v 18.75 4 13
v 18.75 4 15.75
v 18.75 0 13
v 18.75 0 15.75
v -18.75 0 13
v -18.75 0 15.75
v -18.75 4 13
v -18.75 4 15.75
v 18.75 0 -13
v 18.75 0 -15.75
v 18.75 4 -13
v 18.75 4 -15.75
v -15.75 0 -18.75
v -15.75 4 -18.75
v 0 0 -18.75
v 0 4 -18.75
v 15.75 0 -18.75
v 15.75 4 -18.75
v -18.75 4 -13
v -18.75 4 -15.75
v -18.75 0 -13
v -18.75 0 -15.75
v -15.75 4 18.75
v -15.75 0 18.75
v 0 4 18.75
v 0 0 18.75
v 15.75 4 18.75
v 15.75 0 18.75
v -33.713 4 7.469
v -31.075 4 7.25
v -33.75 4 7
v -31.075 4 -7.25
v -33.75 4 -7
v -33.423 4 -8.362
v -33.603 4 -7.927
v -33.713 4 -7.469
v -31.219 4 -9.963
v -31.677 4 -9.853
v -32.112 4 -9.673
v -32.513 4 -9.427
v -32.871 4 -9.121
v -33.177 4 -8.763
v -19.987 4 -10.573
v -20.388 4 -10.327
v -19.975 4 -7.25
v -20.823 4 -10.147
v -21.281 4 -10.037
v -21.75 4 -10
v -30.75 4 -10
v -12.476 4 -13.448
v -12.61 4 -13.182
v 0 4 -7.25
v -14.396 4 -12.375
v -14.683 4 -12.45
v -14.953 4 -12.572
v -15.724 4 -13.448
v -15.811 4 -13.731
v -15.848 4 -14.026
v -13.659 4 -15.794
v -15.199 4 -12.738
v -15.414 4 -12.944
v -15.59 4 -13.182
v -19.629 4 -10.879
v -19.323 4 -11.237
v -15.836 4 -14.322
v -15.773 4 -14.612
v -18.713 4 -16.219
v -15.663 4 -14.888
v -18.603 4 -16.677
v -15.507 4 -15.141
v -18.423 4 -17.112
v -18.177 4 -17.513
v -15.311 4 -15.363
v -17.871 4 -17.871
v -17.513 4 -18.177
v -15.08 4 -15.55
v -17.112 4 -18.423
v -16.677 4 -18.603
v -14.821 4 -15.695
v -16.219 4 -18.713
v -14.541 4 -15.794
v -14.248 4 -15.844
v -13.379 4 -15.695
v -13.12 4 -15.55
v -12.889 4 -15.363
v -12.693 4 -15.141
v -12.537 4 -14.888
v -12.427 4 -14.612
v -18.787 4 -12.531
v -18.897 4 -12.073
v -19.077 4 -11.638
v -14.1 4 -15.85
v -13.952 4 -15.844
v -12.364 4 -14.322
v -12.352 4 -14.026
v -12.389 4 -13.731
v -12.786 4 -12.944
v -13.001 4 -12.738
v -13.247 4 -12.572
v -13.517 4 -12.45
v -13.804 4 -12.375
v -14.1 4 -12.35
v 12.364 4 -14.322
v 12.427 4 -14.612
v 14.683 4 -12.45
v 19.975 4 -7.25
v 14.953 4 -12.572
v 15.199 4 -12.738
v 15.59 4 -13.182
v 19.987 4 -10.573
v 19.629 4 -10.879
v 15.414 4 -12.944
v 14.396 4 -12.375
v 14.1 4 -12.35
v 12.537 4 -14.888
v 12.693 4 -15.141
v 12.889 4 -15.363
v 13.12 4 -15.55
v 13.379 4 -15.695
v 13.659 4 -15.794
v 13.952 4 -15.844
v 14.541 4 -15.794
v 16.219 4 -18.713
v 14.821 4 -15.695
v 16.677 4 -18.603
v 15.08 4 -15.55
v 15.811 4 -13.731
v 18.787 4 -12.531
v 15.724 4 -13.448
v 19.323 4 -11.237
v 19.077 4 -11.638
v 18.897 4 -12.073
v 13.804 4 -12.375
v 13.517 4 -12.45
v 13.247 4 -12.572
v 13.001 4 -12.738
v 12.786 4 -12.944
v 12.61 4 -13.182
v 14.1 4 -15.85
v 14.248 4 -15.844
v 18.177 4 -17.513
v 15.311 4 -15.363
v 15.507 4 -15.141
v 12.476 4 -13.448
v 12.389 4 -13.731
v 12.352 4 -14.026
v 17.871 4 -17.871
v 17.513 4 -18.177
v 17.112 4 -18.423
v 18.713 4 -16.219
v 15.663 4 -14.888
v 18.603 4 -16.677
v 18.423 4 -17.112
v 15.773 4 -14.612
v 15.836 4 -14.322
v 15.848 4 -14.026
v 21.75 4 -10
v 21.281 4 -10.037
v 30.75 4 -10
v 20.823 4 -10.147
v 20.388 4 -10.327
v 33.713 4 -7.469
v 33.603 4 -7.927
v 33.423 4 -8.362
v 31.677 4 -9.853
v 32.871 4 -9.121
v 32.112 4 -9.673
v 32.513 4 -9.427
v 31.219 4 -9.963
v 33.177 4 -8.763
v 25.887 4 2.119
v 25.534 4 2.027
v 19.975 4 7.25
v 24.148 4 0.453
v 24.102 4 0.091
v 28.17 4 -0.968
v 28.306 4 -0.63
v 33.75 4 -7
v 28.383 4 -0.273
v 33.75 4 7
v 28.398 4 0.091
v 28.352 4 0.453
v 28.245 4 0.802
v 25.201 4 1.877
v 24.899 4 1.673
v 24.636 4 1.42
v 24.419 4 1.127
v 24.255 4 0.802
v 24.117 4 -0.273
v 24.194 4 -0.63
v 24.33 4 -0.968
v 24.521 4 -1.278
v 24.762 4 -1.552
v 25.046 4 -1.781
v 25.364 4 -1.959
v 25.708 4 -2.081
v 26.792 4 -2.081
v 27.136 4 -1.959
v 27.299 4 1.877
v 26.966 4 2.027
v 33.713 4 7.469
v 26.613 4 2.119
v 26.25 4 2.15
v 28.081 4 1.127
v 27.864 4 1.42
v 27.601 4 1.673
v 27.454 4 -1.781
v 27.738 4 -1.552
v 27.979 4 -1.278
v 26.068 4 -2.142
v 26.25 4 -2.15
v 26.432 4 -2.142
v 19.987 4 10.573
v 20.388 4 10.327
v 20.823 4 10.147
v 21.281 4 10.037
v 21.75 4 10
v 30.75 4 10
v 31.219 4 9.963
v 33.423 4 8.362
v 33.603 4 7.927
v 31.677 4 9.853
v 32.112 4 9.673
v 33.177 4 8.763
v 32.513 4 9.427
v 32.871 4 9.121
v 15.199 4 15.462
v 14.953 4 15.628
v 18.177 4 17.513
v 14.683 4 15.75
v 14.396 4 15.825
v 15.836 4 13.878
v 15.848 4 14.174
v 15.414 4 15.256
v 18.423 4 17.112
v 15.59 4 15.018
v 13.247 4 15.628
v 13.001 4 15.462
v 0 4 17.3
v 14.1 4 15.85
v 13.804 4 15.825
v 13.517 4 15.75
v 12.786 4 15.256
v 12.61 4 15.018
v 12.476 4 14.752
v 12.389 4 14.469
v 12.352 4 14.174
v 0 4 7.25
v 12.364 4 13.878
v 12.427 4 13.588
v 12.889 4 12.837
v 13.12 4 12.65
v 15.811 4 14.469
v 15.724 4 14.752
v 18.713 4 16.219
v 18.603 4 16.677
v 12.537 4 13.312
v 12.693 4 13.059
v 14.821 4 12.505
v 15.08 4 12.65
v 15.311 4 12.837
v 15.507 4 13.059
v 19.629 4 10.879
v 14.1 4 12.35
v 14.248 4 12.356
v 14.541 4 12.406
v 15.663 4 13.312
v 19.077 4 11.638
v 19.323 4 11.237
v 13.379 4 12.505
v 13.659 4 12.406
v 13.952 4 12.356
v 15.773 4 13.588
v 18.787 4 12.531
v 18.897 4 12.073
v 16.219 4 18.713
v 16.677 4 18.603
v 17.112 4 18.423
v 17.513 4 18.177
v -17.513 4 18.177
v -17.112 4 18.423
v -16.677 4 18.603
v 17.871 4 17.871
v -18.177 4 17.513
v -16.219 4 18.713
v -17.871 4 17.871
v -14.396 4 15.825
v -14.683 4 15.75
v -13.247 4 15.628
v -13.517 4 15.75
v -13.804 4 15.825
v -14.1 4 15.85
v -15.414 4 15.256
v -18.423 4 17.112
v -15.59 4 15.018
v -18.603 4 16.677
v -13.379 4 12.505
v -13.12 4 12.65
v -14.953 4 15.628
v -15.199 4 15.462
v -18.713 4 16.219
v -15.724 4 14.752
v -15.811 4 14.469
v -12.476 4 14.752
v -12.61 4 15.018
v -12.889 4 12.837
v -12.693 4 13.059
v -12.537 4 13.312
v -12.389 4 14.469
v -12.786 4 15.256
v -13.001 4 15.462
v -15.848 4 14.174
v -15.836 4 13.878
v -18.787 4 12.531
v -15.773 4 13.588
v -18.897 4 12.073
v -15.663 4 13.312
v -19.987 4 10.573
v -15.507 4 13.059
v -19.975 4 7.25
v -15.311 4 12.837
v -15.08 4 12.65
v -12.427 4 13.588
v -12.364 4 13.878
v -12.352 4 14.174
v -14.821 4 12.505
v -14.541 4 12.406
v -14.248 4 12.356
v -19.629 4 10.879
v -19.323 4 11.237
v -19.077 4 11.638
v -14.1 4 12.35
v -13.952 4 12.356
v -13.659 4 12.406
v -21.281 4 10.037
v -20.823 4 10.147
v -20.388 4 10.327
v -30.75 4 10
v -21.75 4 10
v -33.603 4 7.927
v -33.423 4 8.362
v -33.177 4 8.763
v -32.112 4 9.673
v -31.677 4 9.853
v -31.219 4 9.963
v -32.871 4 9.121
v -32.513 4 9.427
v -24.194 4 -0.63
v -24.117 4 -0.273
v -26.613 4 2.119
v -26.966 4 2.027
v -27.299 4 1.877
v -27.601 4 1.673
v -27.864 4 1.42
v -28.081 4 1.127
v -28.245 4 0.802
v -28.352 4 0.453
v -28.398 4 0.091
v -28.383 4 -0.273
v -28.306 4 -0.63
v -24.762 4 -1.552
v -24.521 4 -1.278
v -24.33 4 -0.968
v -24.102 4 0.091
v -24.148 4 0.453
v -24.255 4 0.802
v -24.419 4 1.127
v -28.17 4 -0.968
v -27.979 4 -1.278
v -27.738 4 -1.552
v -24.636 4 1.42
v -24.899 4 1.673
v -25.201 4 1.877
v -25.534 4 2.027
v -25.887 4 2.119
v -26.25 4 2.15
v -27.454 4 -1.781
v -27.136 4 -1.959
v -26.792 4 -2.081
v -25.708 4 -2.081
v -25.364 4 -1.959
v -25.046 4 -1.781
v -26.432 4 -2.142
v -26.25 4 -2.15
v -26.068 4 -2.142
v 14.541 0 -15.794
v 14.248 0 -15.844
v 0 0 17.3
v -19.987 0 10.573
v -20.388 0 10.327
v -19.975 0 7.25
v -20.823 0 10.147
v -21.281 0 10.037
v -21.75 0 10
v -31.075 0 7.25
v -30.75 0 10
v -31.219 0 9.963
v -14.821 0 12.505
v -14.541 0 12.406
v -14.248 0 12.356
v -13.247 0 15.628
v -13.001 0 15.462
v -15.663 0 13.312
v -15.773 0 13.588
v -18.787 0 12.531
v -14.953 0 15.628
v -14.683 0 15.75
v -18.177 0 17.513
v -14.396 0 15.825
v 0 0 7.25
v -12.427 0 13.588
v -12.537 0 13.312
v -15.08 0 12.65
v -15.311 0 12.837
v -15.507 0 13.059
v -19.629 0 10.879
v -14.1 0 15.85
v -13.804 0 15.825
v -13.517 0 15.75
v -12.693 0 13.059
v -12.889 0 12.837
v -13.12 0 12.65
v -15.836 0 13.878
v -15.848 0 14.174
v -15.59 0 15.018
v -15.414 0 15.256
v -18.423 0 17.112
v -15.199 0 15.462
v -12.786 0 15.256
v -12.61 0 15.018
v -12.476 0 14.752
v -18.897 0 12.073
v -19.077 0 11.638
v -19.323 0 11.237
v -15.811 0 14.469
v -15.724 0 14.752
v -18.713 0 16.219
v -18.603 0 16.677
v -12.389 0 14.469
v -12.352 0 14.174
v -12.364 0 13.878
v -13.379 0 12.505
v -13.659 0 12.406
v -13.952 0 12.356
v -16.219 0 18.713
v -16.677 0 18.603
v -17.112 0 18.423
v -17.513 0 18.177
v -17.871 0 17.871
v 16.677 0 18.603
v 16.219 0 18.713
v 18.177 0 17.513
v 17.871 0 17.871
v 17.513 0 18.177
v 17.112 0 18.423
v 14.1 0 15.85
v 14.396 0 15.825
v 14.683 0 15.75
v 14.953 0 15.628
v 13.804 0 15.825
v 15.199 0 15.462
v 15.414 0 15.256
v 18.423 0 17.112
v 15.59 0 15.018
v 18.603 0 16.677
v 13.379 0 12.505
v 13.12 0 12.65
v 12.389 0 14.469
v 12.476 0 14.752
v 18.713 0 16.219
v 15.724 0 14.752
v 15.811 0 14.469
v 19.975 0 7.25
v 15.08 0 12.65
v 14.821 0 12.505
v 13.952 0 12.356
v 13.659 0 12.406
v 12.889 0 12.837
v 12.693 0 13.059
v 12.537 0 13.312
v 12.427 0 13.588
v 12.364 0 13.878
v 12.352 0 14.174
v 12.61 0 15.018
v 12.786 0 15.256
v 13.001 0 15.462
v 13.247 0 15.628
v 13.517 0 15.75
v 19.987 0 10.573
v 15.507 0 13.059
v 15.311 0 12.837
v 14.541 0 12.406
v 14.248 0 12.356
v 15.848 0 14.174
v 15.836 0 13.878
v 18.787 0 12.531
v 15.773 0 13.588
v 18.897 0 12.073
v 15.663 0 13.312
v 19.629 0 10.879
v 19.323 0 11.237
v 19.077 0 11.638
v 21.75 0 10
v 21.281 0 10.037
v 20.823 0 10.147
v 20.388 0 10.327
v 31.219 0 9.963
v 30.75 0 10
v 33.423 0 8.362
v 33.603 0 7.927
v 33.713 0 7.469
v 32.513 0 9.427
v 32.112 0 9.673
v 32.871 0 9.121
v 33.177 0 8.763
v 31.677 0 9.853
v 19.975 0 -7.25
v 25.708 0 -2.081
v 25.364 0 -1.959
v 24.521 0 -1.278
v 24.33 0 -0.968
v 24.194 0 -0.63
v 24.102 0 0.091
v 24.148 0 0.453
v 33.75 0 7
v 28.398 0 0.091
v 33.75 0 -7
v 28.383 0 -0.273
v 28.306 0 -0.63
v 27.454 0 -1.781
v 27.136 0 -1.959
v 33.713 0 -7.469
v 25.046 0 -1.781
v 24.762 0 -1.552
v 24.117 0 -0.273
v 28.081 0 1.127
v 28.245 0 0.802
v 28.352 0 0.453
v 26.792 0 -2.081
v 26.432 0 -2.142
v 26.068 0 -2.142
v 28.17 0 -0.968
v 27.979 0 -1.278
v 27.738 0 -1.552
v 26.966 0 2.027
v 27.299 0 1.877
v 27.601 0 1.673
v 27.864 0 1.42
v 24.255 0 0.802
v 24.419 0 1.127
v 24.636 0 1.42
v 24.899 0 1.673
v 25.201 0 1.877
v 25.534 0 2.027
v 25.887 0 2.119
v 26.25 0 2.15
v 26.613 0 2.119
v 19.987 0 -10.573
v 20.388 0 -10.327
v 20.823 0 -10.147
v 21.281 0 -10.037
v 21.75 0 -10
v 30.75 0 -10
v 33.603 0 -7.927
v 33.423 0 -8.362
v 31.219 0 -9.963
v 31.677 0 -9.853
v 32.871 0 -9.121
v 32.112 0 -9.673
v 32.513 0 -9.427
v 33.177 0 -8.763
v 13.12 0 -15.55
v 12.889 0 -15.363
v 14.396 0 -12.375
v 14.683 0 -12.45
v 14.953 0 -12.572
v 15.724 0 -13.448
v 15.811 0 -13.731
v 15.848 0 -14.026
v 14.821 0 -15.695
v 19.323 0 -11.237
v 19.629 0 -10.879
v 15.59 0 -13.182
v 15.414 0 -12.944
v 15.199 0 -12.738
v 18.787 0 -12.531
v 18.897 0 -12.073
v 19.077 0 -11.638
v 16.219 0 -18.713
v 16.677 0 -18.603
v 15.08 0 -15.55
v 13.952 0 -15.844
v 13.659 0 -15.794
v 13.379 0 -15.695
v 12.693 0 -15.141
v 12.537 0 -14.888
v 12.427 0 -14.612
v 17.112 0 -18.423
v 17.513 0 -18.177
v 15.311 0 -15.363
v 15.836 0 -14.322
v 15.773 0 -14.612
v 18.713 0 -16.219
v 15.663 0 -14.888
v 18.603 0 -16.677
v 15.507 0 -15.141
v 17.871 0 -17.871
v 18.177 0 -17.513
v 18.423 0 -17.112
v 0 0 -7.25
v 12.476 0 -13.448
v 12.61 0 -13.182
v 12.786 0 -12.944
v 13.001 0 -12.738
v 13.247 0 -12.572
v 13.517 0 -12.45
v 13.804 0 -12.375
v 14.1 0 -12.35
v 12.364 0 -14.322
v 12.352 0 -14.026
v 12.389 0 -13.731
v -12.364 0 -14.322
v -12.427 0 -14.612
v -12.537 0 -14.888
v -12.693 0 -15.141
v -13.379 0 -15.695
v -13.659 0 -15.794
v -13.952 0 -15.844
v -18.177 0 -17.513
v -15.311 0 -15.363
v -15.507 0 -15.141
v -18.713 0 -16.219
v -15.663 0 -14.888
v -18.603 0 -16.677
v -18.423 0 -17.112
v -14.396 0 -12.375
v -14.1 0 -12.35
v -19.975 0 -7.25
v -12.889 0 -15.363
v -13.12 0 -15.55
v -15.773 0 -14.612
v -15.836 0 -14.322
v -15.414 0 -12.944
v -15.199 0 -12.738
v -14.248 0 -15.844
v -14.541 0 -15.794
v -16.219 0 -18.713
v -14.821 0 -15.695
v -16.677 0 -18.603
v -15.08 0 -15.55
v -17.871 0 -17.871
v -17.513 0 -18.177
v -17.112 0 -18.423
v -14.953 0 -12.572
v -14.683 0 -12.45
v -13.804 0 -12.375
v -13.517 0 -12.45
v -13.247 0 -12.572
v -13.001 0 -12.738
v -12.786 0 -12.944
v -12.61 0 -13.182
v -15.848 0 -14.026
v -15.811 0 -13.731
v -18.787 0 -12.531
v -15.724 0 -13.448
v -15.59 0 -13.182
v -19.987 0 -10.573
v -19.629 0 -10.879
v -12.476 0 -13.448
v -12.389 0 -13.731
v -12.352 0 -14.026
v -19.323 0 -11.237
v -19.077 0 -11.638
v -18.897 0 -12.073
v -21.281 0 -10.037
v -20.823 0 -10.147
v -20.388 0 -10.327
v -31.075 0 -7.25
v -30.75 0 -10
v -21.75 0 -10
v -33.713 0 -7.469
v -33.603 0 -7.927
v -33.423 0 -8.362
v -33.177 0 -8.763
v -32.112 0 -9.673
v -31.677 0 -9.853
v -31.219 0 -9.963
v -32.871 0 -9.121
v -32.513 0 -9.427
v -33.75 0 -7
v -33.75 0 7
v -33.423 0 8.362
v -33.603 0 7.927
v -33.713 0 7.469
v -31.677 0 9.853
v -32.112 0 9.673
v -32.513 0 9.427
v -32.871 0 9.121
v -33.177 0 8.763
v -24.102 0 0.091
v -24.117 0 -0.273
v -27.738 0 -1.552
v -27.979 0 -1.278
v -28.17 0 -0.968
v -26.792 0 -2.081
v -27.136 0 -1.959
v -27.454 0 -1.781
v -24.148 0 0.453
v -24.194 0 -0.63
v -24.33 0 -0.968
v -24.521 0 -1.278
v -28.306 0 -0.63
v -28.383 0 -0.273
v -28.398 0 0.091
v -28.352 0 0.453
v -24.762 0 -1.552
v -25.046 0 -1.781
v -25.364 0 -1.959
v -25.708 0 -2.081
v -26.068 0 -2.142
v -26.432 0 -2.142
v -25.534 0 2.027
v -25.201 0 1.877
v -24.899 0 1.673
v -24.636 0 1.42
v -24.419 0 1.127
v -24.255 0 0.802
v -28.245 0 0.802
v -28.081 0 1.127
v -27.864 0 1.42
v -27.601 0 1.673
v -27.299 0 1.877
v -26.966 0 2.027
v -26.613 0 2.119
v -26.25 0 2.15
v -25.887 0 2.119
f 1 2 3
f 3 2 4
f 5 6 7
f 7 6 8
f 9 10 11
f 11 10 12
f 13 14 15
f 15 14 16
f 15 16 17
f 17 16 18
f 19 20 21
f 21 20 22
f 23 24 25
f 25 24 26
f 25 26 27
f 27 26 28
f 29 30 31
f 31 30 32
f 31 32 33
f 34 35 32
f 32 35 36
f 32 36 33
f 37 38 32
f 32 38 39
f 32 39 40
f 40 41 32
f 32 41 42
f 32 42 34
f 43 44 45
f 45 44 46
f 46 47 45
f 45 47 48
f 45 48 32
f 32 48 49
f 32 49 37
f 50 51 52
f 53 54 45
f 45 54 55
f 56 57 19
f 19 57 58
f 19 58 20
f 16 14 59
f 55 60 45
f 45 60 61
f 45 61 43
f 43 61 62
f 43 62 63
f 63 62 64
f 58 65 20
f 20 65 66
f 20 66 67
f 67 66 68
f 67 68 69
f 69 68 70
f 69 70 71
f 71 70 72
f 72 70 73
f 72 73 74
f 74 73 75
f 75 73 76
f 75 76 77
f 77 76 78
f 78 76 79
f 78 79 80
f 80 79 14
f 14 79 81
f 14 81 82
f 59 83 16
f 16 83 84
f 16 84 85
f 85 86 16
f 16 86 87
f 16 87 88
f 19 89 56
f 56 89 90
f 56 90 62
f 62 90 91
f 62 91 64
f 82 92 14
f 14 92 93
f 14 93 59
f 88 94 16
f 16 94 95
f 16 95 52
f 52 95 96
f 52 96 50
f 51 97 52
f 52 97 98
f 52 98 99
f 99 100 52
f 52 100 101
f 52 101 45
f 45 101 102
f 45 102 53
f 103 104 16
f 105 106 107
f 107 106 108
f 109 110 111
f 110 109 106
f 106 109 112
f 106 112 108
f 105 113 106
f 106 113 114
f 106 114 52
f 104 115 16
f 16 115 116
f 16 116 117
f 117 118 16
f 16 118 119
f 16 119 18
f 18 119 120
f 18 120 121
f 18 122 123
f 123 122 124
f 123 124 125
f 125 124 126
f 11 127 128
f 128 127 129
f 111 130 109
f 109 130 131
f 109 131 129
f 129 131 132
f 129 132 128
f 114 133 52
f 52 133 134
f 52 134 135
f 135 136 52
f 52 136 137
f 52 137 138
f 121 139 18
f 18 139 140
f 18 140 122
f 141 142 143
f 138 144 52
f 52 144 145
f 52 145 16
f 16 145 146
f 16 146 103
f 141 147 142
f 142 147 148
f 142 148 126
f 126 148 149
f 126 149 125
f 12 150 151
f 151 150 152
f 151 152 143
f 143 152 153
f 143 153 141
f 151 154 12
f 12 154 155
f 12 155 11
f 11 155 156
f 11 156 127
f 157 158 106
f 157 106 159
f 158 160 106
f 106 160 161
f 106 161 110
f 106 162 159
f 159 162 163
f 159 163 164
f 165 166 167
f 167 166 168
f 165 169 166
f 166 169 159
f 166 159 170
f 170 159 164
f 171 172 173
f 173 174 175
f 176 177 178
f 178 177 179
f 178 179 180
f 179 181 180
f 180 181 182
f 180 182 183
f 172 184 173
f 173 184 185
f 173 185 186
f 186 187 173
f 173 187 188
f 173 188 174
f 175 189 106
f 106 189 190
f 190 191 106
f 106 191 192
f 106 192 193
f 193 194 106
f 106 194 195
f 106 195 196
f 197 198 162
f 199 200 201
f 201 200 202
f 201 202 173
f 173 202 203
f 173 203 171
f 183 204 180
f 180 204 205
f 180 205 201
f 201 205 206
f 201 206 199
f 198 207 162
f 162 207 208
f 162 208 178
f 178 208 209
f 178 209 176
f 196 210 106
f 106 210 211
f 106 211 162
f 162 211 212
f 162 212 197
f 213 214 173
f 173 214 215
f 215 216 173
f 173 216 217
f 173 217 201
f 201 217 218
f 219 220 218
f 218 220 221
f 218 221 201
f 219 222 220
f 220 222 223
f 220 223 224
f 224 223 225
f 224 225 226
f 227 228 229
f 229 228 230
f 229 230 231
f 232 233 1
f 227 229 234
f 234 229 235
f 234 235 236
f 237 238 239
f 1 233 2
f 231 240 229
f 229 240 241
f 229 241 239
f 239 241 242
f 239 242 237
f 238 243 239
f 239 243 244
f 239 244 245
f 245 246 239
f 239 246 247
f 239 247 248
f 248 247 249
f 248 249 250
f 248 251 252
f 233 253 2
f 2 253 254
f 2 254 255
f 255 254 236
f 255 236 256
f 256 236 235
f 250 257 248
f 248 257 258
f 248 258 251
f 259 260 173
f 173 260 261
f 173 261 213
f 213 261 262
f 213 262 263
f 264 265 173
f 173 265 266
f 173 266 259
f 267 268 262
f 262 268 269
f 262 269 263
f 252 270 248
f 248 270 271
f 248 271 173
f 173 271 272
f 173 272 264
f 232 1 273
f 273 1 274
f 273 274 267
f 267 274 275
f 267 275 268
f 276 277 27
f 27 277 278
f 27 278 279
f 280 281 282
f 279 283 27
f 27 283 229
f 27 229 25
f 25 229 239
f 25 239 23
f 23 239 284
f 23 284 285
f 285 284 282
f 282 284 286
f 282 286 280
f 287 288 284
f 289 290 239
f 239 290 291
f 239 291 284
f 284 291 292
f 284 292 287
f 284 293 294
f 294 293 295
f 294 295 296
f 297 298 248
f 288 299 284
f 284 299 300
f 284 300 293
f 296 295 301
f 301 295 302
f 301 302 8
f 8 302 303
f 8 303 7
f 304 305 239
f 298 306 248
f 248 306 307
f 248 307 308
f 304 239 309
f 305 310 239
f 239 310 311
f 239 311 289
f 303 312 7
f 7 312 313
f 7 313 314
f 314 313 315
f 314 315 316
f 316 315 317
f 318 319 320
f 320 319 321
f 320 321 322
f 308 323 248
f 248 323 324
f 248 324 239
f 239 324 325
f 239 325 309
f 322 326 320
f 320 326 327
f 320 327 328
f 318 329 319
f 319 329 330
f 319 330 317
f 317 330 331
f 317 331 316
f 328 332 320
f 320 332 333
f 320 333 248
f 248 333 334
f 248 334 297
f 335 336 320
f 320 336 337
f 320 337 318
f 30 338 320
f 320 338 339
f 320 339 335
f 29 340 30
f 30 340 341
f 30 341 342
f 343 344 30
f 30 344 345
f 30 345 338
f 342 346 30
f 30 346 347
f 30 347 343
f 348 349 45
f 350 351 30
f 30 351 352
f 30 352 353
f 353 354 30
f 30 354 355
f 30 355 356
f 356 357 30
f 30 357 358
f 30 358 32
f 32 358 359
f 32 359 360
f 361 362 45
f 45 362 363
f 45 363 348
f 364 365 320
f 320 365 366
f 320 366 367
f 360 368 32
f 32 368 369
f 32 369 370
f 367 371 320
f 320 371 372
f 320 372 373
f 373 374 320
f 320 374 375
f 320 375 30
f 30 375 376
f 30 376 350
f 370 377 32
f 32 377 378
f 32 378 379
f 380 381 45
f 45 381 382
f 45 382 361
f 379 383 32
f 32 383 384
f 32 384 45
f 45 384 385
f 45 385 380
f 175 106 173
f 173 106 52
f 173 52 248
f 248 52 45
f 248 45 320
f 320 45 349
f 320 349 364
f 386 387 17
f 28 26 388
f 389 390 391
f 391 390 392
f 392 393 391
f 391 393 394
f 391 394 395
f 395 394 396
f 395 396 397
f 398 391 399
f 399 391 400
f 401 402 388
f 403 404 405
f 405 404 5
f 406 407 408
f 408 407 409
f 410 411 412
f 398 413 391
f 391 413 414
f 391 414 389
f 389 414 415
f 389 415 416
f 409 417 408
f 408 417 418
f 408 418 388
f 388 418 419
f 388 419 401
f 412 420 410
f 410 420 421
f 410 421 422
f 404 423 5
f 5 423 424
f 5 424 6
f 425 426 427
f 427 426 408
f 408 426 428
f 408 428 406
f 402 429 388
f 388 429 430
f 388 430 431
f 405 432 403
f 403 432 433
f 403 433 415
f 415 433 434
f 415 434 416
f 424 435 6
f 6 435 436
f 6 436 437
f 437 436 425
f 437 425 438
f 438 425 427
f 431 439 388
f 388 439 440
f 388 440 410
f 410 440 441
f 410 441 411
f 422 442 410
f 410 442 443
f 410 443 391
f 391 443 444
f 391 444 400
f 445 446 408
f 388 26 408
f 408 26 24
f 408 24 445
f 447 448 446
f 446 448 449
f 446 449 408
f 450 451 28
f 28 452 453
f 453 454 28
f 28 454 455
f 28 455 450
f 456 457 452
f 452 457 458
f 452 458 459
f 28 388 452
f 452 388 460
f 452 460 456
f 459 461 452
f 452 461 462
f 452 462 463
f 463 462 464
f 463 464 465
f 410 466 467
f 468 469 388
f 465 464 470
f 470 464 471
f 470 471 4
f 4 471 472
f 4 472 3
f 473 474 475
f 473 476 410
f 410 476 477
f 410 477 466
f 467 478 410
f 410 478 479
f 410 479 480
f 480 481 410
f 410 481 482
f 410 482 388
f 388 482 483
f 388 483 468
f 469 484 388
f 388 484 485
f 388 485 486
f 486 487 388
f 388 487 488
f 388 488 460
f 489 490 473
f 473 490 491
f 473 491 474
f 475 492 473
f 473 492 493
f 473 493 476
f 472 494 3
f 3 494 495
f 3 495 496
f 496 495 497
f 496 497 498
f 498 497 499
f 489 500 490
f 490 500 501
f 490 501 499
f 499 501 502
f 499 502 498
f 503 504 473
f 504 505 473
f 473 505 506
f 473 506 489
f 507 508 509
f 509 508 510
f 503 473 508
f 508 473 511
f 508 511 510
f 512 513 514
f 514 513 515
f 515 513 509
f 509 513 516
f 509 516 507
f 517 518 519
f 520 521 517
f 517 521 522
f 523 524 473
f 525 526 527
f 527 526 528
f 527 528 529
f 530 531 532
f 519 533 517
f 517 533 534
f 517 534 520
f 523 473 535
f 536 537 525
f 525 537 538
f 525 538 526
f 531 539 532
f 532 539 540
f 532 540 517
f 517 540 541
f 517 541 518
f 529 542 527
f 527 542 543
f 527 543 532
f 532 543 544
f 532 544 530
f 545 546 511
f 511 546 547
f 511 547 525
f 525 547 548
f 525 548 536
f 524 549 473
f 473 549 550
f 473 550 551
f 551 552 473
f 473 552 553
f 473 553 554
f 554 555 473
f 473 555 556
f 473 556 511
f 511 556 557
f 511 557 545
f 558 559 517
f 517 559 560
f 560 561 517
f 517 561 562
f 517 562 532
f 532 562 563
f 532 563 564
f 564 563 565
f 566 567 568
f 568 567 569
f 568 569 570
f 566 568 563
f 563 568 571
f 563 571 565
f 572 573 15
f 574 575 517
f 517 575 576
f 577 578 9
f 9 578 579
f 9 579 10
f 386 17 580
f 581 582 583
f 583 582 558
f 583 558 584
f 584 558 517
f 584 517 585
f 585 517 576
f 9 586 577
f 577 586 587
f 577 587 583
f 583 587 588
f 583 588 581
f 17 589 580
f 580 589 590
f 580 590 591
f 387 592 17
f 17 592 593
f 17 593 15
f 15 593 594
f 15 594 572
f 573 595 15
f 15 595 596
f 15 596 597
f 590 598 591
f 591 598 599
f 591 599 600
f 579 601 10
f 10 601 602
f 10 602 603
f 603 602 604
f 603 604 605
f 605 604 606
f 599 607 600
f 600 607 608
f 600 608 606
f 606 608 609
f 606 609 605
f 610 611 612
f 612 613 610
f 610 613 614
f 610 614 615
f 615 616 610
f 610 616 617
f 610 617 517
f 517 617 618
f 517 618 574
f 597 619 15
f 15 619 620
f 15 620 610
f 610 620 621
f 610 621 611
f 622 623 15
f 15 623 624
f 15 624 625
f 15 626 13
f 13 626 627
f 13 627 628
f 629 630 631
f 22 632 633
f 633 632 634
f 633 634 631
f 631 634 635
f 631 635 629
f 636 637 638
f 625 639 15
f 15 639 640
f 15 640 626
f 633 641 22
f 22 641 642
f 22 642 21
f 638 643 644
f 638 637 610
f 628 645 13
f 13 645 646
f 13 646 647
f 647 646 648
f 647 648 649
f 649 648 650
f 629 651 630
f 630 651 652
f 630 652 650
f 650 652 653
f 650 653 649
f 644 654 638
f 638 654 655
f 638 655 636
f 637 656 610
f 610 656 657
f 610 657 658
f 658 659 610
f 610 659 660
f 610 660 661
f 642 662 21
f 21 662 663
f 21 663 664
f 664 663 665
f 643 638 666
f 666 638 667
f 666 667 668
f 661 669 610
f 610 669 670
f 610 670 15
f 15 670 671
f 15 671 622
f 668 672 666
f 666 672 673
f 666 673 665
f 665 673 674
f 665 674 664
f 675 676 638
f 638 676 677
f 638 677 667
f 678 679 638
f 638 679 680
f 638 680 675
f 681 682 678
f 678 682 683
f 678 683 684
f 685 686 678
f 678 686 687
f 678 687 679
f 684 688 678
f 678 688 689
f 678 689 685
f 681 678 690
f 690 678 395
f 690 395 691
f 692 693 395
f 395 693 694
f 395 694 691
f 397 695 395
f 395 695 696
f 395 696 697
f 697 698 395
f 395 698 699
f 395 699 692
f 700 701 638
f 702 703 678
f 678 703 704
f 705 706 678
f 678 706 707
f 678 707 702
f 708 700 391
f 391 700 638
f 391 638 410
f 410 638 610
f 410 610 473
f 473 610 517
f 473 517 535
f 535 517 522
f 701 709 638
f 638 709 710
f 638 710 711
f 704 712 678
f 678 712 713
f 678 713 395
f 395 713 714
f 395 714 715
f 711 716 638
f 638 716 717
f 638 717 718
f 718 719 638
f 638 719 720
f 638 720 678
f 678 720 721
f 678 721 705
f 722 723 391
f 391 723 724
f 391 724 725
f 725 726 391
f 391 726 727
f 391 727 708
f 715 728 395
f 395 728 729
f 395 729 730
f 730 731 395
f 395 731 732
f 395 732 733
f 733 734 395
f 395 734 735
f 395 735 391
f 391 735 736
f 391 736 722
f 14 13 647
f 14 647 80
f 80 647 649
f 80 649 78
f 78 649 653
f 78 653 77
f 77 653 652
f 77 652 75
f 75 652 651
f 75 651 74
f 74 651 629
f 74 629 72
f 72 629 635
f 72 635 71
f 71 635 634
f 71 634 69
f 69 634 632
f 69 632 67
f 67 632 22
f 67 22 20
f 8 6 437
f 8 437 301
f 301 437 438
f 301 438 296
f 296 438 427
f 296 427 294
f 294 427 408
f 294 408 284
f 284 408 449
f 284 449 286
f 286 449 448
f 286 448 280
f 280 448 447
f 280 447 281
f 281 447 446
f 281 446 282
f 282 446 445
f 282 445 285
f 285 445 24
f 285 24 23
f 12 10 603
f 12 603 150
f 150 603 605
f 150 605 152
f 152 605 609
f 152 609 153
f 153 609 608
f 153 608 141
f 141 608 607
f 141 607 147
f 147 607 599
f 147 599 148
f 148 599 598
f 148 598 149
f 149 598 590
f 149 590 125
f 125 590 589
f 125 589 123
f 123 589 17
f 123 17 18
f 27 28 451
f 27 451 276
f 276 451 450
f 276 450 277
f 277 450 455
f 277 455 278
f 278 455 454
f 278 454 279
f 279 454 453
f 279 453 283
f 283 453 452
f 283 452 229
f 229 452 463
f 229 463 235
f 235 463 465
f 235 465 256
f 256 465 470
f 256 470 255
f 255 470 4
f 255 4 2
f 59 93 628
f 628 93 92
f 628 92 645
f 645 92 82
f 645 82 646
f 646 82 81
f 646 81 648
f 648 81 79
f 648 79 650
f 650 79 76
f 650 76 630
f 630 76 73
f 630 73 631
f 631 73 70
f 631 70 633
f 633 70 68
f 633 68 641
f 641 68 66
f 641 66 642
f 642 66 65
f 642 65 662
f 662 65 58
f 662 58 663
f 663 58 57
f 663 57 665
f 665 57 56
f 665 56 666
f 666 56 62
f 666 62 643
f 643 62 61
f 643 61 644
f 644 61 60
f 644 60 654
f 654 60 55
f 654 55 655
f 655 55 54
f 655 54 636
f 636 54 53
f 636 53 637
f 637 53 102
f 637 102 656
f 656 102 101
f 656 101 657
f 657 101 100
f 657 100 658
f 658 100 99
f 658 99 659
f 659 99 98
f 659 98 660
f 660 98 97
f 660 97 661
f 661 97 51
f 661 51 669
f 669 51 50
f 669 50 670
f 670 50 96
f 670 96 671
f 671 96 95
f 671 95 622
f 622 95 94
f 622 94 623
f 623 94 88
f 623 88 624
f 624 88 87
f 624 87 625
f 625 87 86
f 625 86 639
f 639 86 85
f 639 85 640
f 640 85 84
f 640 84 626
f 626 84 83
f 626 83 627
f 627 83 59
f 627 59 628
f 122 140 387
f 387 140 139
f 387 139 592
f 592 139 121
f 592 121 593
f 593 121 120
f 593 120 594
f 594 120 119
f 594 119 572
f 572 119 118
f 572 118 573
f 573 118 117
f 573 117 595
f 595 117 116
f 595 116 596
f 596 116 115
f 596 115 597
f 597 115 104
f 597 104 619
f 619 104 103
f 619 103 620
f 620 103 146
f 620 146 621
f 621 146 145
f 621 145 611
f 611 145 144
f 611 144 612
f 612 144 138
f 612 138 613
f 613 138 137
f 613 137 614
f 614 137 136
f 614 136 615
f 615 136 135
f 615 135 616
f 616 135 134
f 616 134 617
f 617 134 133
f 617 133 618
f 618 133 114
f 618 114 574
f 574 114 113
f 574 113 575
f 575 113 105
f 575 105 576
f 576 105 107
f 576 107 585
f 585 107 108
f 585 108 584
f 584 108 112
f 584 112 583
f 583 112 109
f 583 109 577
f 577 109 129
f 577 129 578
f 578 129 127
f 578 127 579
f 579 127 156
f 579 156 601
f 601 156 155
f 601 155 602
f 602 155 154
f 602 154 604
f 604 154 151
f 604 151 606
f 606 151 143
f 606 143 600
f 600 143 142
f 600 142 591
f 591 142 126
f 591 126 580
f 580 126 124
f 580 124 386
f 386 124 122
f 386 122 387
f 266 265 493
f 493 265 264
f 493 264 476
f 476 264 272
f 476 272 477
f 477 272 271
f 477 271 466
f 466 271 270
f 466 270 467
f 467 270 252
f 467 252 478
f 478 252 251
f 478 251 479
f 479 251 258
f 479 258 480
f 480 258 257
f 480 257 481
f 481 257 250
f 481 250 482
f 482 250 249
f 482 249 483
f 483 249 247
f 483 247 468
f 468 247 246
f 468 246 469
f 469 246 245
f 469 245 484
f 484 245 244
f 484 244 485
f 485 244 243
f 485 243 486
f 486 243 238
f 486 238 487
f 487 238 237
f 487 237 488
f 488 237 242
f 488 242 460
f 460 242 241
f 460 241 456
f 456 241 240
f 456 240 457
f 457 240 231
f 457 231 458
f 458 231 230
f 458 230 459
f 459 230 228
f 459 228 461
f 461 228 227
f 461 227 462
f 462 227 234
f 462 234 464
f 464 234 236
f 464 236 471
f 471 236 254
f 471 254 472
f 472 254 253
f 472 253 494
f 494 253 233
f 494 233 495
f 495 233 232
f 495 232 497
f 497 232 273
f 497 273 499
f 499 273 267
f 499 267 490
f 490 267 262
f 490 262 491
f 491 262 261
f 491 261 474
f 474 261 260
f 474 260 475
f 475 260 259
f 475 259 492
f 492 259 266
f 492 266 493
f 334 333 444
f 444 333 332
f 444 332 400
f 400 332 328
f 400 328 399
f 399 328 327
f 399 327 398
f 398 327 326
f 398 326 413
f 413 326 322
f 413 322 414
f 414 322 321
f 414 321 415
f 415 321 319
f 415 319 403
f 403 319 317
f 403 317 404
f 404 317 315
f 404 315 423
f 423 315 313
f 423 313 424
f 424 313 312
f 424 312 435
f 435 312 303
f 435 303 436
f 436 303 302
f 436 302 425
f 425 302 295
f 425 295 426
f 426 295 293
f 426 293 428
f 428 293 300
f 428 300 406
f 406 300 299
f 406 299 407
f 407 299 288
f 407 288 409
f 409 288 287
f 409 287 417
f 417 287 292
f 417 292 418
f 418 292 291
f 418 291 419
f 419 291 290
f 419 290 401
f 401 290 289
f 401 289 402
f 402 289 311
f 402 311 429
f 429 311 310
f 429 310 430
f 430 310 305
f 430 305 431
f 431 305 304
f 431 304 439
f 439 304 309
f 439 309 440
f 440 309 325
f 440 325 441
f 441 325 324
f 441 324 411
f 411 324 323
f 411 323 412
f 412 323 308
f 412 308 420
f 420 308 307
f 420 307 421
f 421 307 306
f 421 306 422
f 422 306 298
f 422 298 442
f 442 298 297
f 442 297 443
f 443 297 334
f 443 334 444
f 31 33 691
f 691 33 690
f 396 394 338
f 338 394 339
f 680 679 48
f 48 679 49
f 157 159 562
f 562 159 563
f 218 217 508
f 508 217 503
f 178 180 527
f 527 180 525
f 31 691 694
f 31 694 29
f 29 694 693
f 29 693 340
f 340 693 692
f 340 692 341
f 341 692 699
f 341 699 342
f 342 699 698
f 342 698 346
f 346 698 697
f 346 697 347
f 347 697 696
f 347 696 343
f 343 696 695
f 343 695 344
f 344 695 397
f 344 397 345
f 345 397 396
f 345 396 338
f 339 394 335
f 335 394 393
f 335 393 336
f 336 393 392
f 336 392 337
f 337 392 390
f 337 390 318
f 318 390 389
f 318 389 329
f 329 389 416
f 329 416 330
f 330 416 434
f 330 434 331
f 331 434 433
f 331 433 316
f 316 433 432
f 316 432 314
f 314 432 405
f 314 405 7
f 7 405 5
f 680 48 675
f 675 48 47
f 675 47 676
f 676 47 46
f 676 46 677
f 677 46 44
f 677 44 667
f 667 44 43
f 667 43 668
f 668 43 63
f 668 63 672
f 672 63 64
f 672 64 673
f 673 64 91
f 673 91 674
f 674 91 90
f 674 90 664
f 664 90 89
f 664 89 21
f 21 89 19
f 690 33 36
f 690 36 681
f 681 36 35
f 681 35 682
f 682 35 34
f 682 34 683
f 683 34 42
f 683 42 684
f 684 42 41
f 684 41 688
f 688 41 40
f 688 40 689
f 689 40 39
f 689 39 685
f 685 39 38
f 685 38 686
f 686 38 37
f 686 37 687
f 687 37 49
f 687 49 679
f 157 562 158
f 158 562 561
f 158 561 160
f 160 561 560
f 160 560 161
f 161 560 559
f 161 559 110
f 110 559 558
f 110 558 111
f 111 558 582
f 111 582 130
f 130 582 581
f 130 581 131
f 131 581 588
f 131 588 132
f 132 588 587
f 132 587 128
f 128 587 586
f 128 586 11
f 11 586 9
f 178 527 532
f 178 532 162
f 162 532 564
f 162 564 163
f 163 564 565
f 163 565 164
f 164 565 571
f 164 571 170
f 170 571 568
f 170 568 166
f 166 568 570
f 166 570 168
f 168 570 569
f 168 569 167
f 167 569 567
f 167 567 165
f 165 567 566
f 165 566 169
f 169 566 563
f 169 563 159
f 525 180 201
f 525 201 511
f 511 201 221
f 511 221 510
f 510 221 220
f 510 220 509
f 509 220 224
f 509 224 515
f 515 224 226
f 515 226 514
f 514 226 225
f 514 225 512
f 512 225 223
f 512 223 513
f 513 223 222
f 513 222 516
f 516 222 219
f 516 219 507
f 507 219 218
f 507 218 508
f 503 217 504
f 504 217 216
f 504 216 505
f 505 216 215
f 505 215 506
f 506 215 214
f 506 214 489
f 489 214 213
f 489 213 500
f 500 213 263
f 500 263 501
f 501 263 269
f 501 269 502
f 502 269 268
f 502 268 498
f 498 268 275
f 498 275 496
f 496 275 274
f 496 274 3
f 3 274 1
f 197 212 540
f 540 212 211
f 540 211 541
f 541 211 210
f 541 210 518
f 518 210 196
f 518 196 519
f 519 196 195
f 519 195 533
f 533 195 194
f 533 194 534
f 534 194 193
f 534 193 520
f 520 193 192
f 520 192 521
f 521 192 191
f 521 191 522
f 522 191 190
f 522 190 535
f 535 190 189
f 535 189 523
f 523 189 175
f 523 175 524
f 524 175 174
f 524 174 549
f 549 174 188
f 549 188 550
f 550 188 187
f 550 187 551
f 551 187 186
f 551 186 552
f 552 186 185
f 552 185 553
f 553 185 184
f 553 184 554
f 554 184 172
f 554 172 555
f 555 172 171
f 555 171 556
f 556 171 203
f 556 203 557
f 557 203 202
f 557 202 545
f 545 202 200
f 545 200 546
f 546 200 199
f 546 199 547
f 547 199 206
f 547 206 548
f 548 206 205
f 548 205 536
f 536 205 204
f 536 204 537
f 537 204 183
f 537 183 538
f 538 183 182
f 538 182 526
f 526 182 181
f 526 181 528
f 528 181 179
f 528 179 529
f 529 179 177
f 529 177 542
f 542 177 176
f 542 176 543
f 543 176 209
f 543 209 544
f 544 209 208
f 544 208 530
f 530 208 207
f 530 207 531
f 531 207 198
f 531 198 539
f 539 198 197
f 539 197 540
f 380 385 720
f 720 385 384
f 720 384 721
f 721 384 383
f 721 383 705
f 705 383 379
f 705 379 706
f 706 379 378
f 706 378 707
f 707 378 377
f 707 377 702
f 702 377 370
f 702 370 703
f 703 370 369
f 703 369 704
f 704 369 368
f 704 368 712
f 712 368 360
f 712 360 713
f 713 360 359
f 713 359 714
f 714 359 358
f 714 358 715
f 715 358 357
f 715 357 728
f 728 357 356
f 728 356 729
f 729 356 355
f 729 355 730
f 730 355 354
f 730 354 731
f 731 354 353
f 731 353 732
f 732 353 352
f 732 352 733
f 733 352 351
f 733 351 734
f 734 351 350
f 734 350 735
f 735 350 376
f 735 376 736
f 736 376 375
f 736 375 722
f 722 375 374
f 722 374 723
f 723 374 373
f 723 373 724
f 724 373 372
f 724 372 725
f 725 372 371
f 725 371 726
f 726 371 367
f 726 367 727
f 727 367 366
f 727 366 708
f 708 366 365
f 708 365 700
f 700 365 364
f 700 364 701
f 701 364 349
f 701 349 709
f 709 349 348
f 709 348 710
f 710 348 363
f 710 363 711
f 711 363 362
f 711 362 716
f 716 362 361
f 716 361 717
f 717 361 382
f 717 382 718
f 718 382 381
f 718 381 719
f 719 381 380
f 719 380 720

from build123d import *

# Parameters (mm, degrees)
SKETCH1_W               = 37.5
SKETCH1_H               = 37.5
BOSS_EXTRUDE1_DEPTH     = 4
FILLET1_R               = 3
SKETCH5_R               = 1.75
CUT_EXTRUDE2_DEPTH      = 1
CUT_EXTRUDE2_DEPTH_BACK = 5
SKETCH6_W               = 67.5
SKETCH6_H               = 20
BOSS_EXTRUDE2_DEPTH     = 4
FILLET2_R               = 3
SKETCH7_R               = 2.15
CUT_EXTRUDE3_DEPTH      = 1
CUT_EXTRUDE3_DEPTH_BACK = 5


with BuildPart() as part:
    # Sketch1 → Boss-Extrude1 (new body)
    with BuildSketch(Plane(origin=(0, 0, 0), x_dir=(1, 0, 0), z_dir=(0, 1, 0))):
        Rectangle(SKETCH1_W, SKETCH1_H)
    extrude(amount=BOSS_EXTRUDE1_DEPTH)

    # Fillet1
    fillet1_edges = [part.edges().sort_by_distance(p)[0] for p in [
        (18.75, 2, 18.75),
        (-18.75, 2, 18.75),
        (-18.75, 2, -18.75),
        (18.75, 2, -18.75),
    ]]
    fillet(fillet1_edges, radius=FILLET1_R)

    # Sketch5 → Cut-Extrude2 (cut, two sides)
    with BuildSketch(Plane(origin=(0, 4, 0), x_dir=(1, 0, 0), z_dir=(0, 1, 0))) as cut_extrude2_sk:
        with Locations((-14.1, 14.1)):
            Circle(SKETCH5_R)
        with Locations((14.1, 14.1)):
            Circle(SKETCH5_R)
        with Locations((14.1, -14.1)):
            Circle(SKETCH5_R)
        with Locations((-14.1, -14.1)):
            Circle(SKETCH5_R)
    extrude(amount=CUT_EXTRUDE2_DEPTH, mode=Mode.SUBTRACT)
    extrude(cut_extrude2_sk.sketch, amount=-CUT_EXTRUDE2_DEPTH_BACK, mode=Mode.SUBTRACT)

    # Sketch6 → Boss-Extrude2 (add)
    with BuildSketch(Plane.XZ):
        Rectangle(SKETCH6_W, SKETCH6_H)
    extrude(amount=-BOSS_EXTRUDE2_DEPTH)

    # Fillet2
    fillet2_edges = [part.edges().sort_by_distance(p)[0] for p in [
        (33.75, 2, -10),
        (18.75, 2, 10),
        (-18.75, 2, 10),
        (-33.75, 2, 10),
        (-33.75, 2, -10),
        (18.75, 2, -10),
        (-18.75, 2, -10),
        (33.75, 2, 10),
    ]]
    fillet(fillet2_edges, radius=FILLET2_R)

    # Sketch7 → Cut-Extrude3 (cut, two sides)
    with BuildSketch(Plane(origin=(0, 4, 0), x_dir=(1, 0, 0), z_dir=(0, 1, 0))) as cut_extrude3_sk:
        with Locations((-26.25, 0)):
            Circle(SKETCH7_R)
        with Locations((26.25, 0)):
            Circle(SKETCH7_R)
    extrude(amount=CUT_EXTRUDE3_DEPTH, mode=Mode.SUBTRACT)
    extrude(cut_extrude3_sk.sketch, amount=-CUT_EXTRUDE3_DEPTH_BACK, mode=Mode.SUBTRACT)


solid = part.part
